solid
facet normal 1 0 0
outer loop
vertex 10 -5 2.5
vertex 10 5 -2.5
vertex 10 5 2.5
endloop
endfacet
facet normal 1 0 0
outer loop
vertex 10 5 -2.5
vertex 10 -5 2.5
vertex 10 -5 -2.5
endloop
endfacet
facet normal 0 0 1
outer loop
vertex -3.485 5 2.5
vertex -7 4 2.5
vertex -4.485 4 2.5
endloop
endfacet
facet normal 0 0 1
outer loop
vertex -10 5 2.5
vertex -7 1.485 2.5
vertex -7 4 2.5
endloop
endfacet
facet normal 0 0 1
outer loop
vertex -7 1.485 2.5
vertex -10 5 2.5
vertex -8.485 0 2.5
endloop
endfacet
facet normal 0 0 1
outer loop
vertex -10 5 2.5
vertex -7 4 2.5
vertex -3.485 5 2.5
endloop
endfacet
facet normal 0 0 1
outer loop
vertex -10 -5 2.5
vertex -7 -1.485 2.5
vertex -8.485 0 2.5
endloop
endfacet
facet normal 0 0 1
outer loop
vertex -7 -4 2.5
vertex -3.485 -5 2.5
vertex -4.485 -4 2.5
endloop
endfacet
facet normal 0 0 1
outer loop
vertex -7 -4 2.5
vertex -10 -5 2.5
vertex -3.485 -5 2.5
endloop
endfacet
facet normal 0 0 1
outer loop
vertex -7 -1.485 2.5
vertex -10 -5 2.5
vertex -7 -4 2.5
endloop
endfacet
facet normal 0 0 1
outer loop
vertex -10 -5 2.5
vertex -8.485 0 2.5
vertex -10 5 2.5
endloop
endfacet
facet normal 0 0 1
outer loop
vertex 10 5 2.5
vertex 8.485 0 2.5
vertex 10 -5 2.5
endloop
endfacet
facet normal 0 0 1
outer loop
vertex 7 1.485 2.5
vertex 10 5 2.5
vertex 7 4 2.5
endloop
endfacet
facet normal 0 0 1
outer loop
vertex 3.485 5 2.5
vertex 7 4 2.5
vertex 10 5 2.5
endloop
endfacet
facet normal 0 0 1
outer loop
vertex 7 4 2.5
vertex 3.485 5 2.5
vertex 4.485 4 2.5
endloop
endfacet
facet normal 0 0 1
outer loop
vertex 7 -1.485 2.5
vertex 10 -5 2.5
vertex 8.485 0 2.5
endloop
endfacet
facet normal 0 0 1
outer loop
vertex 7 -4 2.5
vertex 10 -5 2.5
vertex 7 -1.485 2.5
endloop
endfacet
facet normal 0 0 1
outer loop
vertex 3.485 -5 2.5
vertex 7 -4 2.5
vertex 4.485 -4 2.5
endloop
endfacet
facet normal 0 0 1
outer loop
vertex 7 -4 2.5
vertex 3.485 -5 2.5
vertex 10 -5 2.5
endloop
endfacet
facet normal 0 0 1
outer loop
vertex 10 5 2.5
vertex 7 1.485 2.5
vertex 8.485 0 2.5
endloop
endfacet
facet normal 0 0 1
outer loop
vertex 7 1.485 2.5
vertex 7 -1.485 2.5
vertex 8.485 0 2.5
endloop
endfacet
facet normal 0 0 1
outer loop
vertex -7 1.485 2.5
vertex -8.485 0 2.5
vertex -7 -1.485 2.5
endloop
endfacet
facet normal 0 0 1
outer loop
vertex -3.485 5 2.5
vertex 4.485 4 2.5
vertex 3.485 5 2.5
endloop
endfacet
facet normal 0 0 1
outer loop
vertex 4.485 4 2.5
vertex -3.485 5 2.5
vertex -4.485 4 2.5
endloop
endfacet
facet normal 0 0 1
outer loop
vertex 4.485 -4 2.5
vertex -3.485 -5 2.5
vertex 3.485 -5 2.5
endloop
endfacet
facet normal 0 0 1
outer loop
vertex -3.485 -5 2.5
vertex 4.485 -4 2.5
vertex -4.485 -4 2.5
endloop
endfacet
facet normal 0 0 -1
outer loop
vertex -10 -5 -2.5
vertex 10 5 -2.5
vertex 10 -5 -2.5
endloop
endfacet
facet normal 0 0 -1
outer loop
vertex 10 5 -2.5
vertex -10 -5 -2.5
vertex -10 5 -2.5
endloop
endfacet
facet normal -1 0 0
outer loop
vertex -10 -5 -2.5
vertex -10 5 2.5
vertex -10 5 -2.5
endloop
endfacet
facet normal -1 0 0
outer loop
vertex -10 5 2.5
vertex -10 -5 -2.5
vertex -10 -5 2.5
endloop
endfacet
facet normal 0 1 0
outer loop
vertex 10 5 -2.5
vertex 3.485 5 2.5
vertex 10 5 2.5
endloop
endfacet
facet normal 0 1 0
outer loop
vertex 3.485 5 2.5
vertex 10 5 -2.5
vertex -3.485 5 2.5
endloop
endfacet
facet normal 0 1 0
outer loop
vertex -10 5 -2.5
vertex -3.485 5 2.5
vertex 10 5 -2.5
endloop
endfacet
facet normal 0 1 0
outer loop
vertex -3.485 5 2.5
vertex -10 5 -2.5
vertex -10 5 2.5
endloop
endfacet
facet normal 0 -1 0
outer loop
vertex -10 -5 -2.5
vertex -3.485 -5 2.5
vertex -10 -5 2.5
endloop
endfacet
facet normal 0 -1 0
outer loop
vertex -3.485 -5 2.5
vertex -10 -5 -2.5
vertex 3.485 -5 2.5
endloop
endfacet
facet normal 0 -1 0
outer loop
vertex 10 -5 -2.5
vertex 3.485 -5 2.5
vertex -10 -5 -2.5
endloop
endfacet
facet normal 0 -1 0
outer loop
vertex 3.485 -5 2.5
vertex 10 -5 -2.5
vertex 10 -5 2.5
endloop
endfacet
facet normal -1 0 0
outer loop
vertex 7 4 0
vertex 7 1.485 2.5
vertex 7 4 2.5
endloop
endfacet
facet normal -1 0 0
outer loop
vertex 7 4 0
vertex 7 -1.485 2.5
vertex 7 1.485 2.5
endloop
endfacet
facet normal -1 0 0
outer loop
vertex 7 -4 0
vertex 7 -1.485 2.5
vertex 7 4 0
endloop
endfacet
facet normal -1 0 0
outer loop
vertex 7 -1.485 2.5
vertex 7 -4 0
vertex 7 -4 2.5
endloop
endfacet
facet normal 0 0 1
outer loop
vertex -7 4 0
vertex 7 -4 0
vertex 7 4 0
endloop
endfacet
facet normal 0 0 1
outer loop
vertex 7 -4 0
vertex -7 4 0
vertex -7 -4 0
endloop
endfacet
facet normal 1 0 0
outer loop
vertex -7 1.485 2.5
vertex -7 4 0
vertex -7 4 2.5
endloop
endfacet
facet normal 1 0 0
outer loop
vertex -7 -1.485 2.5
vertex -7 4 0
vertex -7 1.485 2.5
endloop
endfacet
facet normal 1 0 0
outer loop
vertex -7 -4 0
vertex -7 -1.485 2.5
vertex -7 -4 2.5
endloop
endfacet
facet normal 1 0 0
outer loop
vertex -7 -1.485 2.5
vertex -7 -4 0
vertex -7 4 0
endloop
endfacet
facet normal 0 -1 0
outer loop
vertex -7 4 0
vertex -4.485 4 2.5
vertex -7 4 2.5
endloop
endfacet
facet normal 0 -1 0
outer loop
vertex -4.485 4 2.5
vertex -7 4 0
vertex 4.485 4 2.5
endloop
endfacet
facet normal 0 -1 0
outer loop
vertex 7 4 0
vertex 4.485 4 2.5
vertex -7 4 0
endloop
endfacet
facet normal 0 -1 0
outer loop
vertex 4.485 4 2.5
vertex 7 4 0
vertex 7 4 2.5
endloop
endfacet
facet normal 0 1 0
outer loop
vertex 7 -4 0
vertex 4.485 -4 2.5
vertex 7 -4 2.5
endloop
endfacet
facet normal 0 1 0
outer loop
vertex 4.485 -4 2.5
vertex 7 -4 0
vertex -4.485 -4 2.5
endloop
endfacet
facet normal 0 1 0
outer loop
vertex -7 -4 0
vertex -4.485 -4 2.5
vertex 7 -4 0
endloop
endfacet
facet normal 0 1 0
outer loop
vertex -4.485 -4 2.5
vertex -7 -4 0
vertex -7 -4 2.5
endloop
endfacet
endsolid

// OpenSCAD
// Angular Connector Component
module angular_connector() {
    difference() {
        // Base block with adjusted dimensions for a sharper profile
        cube([20, 10, 5], center = true);
        
        // Sharper stepped profile
        translate([0, 0, 2.5])
            cube([14, 8, 5], center = true);
        
        // More defined angular tapering
        translate([0, 0, 5])
            rotate([0, 0, 45])
            cube([12, 12, 5], center = true);
    }
}

// Render the angular connector
angular_connector();
